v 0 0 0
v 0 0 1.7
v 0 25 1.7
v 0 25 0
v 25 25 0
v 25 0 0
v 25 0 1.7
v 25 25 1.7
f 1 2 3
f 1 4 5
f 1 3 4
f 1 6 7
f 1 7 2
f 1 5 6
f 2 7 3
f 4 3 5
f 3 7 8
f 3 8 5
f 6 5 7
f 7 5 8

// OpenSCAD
/* Warning, this is a very basic generator with a lot of approximation 
input data : [LBGA, HWC, 25x25x1.70mm, 955, , A, C04-25661A]
generated by com.zoubworld.electronics.cad.model3d.Basic
Date : Sun Feb 15 10:50:49 CET 2026
*/

//body
color("black")
translate([0,0,0])
cube([25.0,25.0,1.7], center=false);
